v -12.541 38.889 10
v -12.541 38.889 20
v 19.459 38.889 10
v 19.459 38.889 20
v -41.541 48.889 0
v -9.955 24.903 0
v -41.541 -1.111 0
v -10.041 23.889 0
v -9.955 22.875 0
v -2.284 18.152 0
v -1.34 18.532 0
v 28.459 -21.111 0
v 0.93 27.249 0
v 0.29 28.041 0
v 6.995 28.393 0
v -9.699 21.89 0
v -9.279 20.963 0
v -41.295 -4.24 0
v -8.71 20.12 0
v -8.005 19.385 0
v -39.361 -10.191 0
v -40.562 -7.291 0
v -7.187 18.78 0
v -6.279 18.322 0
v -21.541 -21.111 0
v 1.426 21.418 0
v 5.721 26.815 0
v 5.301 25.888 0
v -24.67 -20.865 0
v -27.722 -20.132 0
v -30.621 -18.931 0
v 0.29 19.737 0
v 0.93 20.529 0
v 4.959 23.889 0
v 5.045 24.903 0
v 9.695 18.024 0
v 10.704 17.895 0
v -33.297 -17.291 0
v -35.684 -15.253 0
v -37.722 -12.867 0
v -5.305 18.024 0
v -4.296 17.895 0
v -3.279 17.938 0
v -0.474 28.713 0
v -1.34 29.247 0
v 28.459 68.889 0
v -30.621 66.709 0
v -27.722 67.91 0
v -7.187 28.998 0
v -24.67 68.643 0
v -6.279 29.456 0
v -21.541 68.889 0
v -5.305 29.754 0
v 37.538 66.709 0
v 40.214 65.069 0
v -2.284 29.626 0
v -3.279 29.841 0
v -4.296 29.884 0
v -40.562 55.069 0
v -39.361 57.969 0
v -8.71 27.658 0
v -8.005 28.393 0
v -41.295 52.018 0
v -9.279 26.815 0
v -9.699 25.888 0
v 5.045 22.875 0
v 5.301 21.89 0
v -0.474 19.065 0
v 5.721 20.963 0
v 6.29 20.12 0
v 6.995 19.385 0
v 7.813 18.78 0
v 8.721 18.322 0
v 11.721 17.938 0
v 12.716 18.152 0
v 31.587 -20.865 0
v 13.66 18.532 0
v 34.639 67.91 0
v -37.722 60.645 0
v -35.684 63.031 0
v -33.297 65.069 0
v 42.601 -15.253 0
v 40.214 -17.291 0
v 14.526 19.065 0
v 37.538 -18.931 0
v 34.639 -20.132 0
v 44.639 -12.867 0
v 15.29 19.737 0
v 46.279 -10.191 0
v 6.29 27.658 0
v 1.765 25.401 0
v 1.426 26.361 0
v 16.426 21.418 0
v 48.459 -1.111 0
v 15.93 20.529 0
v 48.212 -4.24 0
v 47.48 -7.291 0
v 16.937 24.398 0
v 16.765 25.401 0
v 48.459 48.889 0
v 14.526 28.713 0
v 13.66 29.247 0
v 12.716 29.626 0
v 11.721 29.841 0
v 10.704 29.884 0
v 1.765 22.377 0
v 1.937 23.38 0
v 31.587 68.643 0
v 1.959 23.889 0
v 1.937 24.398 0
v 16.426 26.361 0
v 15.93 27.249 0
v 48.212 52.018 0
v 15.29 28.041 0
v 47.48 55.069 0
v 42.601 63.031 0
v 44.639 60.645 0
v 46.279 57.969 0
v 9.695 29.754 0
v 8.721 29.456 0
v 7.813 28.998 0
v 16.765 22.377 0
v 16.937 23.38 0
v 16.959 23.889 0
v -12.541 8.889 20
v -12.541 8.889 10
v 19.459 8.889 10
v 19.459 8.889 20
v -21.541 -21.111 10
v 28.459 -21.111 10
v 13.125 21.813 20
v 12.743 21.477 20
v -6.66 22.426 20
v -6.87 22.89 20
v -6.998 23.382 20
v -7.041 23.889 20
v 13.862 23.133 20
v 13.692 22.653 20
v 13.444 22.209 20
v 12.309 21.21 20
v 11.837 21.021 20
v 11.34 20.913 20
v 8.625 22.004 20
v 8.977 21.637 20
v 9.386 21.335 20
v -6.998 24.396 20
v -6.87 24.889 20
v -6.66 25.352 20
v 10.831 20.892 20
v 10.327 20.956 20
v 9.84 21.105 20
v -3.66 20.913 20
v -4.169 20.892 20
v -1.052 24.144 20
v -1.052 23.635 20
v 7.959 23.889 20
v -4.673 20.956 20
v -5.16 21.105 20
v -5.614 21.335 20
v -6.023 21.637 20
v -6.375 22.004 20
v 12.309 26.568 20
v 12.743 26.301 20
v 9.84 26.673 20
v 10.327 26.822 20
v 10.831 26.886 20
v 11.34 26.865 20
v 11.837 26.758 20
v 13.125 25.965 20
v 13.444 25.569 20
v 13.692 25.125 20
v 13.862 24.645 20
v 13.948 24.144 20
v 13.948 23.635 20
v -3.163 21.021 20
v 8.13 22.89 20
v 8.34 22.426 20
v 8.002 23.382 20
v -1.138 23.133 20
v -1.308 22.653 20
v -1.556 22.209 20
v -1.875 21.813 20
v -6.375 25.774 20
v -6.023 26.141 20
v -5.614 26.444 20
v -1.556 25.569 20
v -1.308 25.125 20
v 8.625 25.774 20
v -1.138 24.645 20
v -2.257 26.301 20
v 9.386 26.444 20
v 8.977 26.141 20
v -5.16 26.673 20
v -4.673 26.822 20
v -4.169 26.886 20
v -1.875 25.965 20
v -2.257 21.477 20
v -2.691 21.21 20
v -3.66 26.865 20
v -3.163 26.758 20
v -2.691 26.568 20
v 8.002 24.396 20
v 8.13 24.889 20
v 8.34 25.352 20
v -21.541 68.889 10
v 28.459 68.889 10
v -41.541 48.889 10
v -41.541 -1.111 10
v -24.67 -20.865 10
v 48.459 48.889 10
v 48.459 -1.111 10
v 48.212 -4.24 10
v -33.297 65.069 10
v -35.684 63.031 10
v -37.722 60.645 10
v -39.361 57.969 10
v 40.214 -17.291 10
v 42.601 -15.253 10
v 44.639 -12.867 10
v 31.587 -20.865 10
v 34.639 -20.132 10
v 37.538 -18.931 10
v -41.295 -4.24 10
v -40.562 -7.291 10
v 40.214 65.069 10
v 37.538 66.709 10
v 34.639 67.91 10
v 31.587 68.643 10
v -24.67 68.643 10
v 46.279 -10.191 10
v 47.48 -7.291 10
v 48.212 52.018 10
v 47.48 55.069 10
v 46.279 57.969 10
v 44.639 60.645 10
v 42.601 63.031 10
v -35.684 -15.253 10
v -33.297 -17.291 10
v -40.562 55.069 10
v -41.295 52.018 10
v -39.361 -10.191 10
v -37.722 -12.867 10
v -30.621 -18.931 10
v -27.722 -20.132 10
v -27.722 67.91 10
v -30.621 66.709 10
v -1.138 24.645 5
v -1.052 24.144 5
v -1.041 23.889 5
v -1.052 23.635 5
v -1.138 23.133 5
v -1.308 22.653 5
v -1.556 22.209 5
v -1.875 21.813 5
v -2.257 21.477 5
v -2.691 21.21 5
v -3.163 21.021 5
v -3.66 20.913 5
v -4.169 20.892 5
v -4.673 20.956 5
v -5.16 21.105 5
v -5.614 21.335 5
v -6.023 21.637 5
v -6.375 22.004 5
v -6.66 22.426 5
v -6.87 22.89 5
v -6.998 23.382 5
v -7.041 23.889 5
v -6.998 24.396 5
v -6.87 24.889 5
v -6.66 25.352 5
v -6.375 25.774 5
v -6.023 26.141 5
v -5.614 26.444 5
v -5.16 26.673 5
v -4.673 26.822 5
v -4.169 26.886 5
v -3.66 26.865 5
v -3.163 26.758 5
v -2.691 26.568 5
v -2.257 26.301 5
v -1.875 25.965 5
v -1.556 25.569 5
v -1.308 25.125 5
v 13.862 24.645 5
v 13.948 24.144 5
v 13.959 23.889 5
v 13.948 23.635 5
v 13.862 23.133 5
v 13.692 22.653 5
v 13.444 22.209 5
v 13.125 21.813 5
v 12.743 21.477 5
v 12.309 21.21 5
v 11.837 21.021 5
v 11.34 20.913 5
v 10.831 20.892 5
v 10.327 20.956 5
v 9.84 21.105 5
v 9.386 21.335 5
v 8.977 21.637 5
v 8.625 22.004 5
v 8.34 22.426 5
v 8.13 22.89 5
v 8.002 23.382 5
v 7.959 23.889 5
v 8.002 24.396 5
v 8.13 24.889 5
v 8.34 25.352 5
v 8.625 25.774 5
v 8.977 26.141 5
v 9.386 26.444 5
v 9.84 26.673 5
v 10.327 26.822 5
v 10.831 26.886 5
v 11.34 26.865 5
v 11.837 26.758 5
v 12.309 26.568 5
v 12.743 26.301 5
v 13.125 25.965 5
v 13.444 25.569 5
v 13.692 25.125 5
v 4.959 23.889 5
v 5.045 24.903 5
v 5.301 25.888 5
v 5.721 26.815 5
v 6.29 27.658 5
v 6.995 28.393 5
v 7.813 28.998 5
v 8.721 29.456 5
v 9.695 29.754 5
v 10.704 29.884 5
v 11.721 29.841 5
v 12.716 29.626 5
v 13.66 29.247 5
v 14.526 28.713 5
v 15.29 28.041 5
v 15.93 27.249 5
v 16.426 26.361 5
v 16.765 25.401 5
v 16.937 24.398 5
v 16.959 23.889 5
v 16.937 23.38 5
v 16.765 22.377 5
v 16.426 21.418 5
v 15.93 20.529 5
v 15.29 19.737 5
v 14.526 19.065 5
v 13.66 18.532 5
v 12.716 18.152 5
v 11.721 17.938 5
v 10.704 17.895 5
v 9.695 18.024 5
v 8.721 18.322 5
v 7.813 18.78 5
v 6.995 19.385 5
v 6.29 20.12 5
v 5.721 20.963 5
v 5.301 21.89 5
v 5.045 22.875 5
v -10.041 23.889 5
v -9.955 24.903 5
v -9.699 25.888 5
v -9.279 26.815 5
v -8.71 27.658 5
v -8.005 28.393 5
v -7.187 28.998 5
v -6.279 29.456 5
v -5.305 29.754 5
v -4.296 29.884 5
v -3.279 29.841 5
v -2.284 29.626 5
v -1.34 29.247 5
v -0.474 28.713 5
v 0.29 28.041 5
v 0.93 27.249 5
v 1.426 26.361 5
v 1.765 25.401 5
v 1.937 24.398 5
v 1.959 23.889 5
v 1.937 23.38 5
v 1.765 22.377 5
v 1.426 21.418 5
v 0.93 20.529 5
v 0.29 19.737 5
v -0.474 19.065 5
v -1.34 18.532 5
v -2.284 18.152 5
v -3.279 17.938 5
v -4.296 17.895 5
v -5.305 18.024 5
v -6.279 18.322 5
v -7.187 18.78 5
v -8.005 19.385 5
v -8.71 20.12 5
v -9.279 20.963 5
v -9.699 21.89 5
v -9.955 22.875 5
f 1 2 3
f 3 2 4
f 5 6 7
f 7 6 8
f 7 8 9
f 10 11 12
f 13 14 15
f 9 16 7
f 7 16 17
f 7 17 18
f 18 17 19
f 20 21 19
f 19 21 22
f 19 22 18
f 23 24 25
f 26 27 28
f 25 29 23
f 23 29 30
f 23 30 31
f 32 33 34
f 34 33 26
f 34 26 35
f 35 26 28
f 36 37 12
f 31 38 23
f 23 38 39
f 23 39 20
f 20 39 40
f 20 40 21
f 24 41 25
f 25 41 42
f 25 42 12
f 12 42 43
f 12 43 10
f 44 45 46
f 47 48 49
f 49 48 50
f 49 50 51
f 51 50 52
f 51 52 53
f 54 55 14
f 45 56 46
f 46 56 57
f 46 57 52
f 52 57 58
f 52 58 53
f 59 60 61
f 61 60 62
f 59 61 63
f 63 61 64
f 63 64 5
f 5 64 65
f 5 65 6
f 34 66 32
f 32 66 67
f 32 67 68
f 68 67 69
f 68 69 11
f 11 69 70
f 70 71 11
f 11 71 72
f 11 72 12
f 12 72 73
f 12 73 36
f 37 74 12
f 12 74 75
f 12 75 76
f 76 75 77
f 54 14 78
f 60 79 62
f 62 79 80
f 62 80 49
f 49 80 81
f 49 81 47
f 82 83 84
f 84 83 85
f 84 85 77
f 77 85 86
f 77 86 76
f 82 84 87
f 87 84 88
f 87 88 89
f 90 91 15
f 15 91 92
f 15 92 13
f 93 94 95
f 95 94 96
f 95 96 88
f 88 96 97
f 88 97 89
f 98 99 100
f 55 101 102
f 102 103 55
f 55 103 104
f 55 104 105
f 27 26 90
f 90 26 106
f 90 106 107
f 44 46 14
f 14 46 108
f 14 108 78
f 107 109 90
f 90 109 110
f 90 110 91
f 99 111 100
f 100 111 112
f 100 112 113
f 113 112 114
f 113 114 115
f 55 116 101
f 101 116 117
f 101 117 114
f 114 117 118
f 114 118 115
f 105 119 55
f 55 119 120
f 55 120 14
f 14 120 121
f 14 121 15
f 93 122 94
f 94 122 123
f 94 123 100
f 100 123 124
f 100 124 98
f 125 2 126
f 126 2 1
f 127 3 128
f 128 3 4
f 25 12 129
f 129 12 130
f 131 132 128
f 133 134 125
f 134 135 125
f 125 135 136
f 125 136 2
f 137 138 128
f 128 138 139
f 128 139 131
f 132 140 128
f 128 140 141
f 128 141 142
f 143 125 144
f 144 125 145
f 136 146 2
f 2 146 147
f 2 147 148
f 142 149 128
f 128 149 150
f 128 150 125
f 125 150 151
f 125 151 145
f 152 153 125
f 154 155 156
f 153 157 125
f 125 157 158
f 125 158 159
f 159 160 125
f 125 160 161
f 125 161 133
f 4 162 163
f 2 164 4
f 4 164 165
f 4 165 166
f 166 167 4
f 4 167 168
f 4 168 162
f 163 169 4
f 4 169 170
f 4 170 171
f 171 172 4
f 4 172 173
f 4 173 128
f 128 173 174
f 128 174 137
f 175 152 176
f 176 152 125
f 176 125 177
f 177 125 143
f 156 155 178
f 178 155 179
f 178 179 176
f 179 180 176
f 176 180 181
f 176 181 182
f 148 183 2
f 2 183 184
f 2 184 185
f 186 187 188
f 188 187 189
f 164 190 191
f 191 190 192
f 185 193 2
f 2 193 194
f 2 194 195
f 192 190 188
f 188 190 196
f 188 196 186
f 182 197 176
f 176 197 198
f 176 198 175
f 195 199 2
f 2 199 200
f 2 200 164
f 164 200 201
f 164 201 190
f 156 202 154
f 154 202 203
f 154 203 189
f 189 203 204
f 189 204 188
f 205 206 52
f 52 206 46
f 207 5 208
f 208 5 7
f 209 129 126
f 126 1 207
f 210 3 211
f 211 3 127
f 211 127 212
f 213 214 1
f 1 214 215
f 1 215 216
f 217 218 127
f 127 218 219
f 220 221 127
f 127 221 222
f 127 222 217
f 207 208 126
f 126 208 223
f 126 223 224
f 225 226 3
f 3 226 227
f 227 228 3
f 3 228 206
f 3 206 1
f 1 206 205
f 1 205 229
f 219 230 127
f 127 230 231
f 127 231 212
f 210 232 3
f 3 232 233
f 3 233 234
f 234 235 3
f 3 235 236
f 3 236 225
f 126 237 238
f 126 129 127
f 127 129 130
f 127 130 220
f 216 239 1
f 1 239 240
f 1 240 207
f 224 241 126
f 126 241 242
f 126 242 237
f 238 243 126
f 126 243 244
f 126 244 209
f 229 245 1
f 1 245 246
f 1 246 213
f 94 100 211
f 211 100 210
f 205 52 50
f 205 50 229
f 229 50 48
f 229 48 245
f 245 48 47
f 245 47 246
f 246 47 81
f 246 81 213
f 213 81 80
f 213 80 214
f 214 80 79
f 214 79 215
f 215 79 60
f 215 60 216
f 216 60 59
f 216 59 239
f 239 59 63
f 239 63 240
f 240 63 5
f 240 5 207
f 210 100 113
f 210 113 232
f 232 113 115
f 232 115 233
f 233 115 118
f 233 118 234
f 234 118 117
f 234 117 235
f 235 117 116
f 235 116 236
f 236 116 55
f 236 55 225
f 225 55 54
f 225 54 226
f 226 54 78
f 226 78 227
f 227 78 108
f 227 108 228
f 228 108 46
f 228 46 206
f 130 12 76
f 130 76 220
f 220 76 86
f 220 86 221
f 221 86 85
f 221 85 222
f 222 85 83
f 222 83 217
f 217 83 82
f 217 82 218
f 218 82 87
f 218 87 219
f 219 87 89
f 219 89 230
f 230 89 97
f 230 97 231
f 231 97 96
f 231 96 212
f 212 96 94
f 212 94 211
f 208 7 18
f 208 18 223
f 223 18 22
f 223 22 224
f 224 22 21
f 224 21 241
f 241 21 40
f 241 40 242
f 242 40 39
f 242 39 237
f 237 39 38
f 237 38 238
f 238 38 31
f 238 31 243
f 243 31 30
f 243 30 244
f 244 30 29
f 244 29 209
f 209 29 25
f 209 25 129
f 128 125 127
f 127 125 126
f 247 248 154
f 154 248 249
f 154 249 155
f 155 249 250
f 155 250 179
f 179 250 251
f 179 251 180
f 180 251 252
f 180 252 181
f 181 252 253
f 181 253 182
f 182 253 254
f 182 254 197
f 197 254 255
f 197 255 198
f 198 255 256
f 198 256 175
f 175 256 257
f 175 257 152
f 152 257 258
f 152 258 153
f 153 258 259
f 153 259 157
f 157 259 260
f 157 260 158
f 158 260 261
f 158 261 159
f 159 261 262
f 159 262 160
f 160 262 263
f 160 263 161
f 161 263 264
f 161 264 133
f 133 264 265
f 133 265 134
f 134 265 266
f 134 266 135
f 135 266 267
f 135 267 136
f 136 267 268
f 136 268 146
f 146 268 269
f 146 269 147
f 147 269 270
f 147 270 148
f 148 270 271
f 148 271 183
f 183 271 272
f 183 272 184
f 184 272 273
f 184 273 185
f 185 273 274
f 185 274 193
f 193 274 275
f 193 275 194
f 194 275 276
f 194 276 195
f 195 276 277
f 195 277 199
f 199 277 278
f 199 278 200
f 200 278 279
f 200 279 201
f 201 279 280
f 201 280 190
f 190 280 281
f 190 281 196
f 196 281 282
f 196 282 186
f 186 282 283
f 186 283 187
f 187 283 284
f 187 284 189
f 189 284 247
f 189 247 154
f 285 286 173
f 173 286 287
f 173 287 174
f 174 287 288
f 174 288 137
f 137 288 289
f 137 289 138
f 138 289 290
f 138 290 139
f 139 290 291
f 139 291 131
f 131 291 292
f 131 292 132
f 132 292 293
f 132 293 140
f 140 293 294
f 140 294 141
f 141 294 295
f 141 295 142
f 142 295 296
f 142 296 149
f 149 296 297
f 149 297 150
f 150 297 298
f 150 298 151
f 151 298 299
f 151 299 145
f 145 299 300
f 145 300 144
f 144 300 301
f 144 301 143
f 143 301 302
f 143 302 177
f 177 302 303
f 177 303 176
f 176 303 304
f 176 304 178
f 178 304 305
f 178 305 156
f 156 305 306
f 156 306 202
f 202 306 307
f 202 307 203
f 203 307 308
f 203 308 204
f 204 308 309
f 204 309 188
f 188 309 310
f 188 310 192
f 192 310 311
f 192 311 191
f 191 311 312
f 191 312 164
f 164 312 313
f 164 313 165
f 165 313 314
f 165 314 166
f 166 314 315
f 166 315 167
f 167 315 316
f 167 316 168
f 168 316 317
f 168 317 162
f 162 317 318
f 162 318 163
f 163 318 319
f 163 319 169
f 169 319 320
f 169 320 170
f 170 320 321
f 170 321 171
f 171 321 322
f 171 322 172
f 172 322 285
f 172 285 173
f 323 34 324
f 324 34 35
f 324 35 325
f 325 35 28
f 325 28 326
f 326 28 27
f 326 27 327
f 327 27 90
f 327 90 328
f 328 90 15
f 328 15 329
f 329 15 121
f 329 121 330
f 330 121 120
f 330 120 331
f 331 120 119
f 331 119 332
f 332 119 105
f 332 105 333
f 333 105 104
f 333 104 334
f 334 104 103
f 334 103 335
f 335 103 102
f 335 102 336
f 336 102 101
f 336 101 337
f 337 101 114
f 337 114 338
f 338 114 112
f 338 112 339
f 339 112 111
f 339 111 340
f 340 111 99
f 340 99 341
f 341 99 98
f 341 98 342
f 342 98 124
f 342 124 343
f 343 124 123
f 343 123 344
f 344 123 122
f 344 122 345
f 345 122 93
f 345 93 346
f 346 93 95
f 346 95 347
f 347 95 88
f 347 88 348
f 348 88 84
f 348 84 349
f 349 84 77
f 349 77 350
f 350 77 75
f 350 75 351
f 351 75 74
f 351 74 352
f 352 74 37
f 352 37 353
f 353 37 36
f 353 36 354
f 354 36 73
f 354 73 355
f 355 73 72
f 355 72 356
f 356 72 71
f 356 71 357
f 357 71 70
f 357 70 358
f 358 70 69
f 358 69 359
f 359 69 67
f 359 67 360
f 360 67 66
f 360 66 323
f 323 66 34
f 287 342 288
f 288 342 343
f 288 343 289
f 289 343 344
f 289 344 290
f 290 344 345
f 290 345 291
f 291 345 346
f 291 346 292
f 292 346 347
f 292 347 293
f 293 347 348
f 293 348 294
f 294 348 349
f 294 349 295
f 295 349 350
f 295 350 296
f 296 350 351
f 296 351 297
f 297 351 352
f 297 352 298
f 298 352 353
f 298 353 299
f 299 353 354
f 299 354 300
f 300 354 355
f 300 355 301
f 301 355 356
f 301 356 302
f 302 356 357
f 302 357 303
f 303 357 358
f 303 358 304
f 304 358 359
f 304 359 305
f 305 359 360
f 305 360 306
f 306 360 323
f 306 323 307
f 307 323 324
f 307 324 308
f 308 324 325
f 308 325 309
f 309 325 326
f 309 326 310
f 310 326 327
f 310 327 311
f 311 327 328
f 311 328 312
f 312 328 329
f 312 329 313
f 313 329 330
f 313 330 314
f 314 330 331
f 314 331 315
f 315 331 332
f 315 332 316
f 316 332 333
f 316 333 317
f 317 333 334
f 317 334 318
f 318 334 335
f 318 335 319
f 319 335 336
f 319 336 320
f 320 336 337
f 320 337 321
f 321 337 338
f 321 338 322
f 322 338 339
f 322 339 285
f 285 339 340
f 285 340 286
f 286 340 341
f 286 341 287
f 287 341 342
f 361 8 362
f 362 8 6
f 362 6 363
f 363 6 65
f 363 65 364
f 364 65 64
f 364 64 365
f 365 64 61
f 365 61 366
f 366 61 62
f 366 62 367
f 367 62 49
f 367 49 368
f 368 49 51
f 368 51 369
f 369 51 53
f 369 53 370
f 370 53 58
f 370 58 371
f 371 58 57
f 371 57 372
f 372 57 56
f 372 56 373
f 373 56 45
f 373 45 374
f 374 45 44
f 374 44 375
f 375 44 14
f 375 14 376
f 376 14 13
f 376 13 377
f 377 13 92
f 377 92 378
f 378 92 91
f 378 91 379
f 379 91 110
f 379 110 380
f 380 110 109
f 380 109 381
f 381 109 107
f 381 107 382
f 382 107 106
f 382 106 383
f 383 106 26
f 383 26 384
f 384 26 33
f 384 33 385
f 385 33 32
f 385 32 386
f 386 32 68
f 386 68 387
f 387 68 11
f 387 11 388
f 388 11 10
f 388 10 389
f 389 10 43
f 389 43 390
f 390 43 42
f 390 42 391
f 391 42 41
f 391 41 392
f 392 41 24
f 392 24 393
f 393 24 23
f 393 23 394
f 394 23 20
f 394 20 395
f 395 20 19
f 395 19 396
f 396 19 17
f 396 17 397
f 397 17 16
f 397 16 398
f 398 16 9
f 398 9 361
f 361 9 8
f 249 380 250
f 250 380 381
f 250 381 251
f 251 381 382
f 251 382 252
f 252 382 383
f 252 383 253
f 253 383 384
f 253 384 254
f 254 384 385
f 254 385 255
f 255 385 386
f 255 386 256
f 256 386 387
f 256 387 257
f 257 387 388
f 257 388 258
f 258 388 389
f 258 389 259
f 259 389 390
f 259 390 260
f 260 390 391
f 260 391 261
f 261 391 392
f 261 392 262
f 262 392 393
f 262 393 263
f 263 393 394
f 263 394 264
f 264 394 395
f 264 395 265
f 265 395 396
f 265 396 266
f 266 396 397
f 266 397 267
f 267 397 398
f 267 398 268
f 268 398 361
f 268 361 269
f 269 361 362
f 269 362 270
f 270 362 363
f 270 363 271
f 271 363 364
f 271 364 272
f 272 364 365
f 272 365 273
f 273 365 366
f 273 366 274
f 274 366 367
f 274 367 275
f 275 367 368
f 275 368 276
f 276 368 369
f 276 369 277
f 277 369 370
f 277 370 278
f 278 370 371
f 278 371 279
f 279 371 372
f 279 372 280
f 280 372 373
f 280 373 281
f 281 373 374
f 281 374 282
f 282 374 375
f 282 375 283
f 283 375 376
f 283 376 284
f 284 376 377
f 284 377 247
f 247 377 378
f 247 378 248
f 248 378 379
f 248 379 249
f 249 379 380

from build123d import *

# Parameters (mm, degrees)
Y_KSEKLIK_EKSTR_ZYON1_DEPTH = 20
CUT_EXTRUDE1_DEPTH          = 44
CUT_EXTRUDE1_DEPTH_BACK     = 10
SKETCH1_R                   = 2.5
SKETCH2_W                   = 32
SKETCH2_H                   = 30
CUT_EXTRUDE3_DEPTH          = 27
SKETCH3_W                   = 32
SKETCH3_H                   = 30
BOSS_EXTRUDE1_DEPTH         = 16
CUT_EXTRUDE4_DEPTH          = 4
SKETCH5_W                   = 33.515954684
SKETCH5_H                   = 18.308274805
BOSS_EXTRUDE2_DEPTH         = 10
CUT_EXTRUDE5_DEPTH          = 53
CUT_EXTRUDE5_DEPTH_BACK     = 25
SKETCH6_R                   = 2.5
SKETCH7_W                   = 36.495036791
SKETCH7_H                   = 91.485439351
SKETCH7_W_2                 = 38.306268879
CUT_EXTRUDE7_DEPTH          = 30
SKETCH8_W                   = 29
SKETCH8_H                   = 90
BOSS_EXTRUDE3_DEPTH         = 10
CUT_EXTRUDE8_DEPTH          = 10
SKETCH10_W                  = 32
SKETCH10_H                  = 30
CUT_EXTRUDE9_DEPTH          = 28
SKETCH11_W                  = 32
SKETCH11_H                  = 30
BOSS_EXTRUDE4_DEPTH         = 10
SKETCH12_R                  = 3
CUT_EXTRUDE10_DEPTH         = 22
SKETCH13_R                  = 6
CUT_EXTRUDE11_DEPTH         = 5


with BuildPart() as part:
    # Çizim1 → Yükseklik-Ekstrüzyon1 (new body)
    with BuildSketch(Plane.XY):
        with BuildLine():
            Line((-41.541366964, -1.110887656), (-41.541366964, 48.889112344))
            ThreePointArc((-41.541366964, 48.889112344), (-35.683502588, 63.031247968), (-21.541366964, 68.889112344))
            Line((-21.541366964, 68.889112344), (28.458633036, 68.889112344))
            ThreePointArc((28.458633036, 68.889112344), (42.600768659, 63.031247968), (48.458633036, 48.889112344))
            Line((48.458633036, 48.889112344), (48.458633036, -1.110887656))
            ThreePointArc((48.458633036, -1.110887656), (42.600768659, -15.25302328), (28.458633036, -21.110887656))
            Line((28.458633036, -21.110887656), (-21.541366964, -21.110887656))
            ThreePointArc((-21.541366964, -21.110887656), (-35.683502588, -15.25302328), (-41.541366964, -1.110887656))
        make_face()
    extrude(amount=Y_KSEKLIK_EKSTR_ZYON1_DEPTH)

    # Sketch1 → Cut-Extrude1 (cut, two sides: drawn at the far end of the back side and taken through both)
    with BuildSketch(Plane.XY.offset(-CUT_EXTRUDE1_DEPTH_BACK)):
        with Locations(Location((-4.041366964, 23.889112344, 0), (0, 0, 180))):
            Circle(SKETCH1_R)
        with Locations(Location((10.958633036, 23.889112344, 0), (0, 0, 180))):
            Circle(SKETCH1_R)
    extrude(amount=CUT_EXTRUDE1_DEPTH + CUT_EXTRUDE1_DEPTH_BACK, mode=Mode.SUBTRACT)

    # Sketch2 → Cut-Extrude3 (cut)
    with BuildSketch(Plane.XY):
        with Locations((3.458633036, 53.889112344)):
            Rectangle(SKETCH2_W, SKETCH2_H)
    extrude(amount=CUT_EXTRUDE3_DEPTH, mode=Mode.SUBTRACT)

    # Sketch3 → Boss-Extrude1 (add)
    with BuildSketch(Plane.XY):
        with Locations((3.458633036, 53.889112344)):
            Rectangle(SKETCH3_W, SKETCH3_H)
    extrude(amount=BOSS_EXTRUDE1_DEPTH)

    # Sketch4 → Cut-Extrude4 (cut)
    with BuildSketch(Plane.XY):
        Polygon((15.692905243, 23.889112344), (13.325769139, 27.989112344), (8.591496932, 27.989112344), (6.224360828, 23.889112344), (8.591496932, 19.789112344), (13.325769139, 19.789112344), align=None)
        Polygon((0.692905243, 23.889112344), (-1.674230861, 27.989112344), (-6.408503068, 27.989112344), (-8.775639172, 23.889112344), (-6.408503068, 19.789112344), (-1.674230861, 19.789112344), align=None)
    extrude(amount=CUT_EXTRUDE4_DEPTH, mode=Mode.SUBTRACT)

    # Sketch5 → Boss-Extrude2 (add)
    with BuildSketch(Plane.XY):
        with Locations((2.203630327, 23.667641278)):
            Rectangle(SKETCH5_W, SKETCH5_H)
    extrude(amount=BOSS_EXTRUDE2_DEPTH)

    # Sketch6 → Cut-Extrude5 (cut, two sides: drawn at the far end of the back side and taken through both)
    with BuildSketch(Plane.XY.offset(-CUT_EXTRUDE5_DEPTH_BACK)):
        with Locations(Location((-4.041366964, 23.889112344, 0), (0, 0, 180))):
            Circle(SKETCH6_R)
        with Locations(Location((10.958633036, 23.889112344, 0), (0, 0, 180))):
            Circle(SKETCH6_R)
    extrude(amount=CUT_EXTRUDE5_DEPTH + CUT_EXTRUDE5_DEPTH_BACK, mode=Mode.SUBTRACT)

    # Sketch7 → Cut-Extrude7 (cut)
    with BuildSketch(Plane.XY):
        with Locations((-30.78888536, 23.146392668)):
            Rectangle(SKETCH7_W, SKETCH7_H)
        with Locations((38.611767476, 23.146392668)):
            Rectangle(SKETCH7_W_2, SKETCH7_H)
    extrude(amount=CUT_EXTRUDE7_DEPTH, mode=Mode.SUBTRACT)

    # Sketch8 → Boss-Extrude3 (add)
    with BuildSketch(Plane.XY):
        with Locations((-27.041366964, 23.889112344)):
            Rectangle(SKETCH8_W, SKETCH8_H)
        with Locations((33.958633036, 23.889112344)):
            Rectangle(SKETCH8_W, SKETCH8_H)
    extrude(amount=BOSS_EXTRUDE3_DEPTH)

    # Sketch9 → Cut-Extrude8 (cut)
    with BuildSketch(Plane.XY):
        with BuildLine():
            Line((-41.541366964, 68.889112344), (-21.541366964, 68.889112344))
            ThreePointArc((-21.541366964, 68.889112344), (-35.683502588, 63.031247968), (-41.541366964, 48.889112344))
            Line((-41.541366964, 48.889112344), (-41.541366964, 68.889112344))
        make_face()
        with BuildLine():
            Line((48.458633036, 68.889112344), (48.458633036, 48.889112344))
            ThreePointArc((48.458633036, 48.889112344), (42.600768659, 63.031247968), (28.458633036, 68.889112344))
            Line((28.458633036, 68.889112344), (48.458633036, 68.889112344))
        make_face()
        with BuildLine():
            Line((48.458633036, -21.110887656), (28.458633036, -21.110887656))
            ThreePointArc((28.458633036, -21.110887656), (42.600768659, -15.25302328), (48.458633036, -1.110887656))
            Line((48.458633036, -1.110887656), (48.458633036, -21.110887656))
        make_face()
        with BuildLine():
            Line((-41.541366964, -21.110887656), (-41.541366964, -1.110887656))
            ThreePointArc((-41.541366964, -1.110887656), (-35.683502588, -15.25302328), (-21.541366964, -21.110887656))
            Line((-21.541366964, -21.110887656), (-41.541366964, -21.110887656))
        make_face()
    extrude(amount=CUT_EXTRUDE8_DEPTH, mode=Mode.SUBTRACT)

    # Sketch10 → Cut-Extrude9 (cut)
    with BuildSketch(Plane.XY):
        with Locations((3.458633036, 53.889112344)):
            Rectangle(SKETCH10_W, SKETCH10_H)
        with Locations((3.458633036, -6.110887656)):
            Rectangle(SKETCH10_W, SKETCH10_H)
    extrude(amount=CUT_EXTRUDE9_DEPTH, mode=Mode.SUBTRACT)

    # Sketch11 → Boss-Extrude4 (add)
    with BuildSketch(Plane.XY):
        with Locations((3.458633036, 53.889112344)):
            Rectangle(SKETCH11_W, SKETCH11_H)
        with Locations((3.458633036, -6.110887656)):
            Rectangle(SKETCH11_W, SKETCH11_H)
    extrude(amount=BOSS_EXTRUDE4_DEPTH)

    # Sketch12 → Cut-Extrude10 (cut)
    with BuildSketch(Plane.XY):
        with Locations(Location((-4.041366964, 23.889112344, 0), (0, 0, 180))):
            Circle(SKETCH12_R)
        with Locations(Location((10.958633036, 23.889112344, 0), (0, 0, 180))):
            Circle(SKETCH12_R)
    extrude(amount=CUT_EXTRUDE10_DEPTH, mode=Mode.SUBTRACT)

    # Sketch13 → Cut-Extrude11 (cut)
    with BuildSketch(Plane.XY):
        with Locations((10.958633036, 23.889112344)):
            Circle(SKETCH13_R)
        with Locations((-4.041366964, 23.889112344)):
            Circle(SKETCH13_R)
    extrude(amount=CUT_EXTRUDE11_DEPTH, mode=Mode.SUBTRACT)


solid = part.part
